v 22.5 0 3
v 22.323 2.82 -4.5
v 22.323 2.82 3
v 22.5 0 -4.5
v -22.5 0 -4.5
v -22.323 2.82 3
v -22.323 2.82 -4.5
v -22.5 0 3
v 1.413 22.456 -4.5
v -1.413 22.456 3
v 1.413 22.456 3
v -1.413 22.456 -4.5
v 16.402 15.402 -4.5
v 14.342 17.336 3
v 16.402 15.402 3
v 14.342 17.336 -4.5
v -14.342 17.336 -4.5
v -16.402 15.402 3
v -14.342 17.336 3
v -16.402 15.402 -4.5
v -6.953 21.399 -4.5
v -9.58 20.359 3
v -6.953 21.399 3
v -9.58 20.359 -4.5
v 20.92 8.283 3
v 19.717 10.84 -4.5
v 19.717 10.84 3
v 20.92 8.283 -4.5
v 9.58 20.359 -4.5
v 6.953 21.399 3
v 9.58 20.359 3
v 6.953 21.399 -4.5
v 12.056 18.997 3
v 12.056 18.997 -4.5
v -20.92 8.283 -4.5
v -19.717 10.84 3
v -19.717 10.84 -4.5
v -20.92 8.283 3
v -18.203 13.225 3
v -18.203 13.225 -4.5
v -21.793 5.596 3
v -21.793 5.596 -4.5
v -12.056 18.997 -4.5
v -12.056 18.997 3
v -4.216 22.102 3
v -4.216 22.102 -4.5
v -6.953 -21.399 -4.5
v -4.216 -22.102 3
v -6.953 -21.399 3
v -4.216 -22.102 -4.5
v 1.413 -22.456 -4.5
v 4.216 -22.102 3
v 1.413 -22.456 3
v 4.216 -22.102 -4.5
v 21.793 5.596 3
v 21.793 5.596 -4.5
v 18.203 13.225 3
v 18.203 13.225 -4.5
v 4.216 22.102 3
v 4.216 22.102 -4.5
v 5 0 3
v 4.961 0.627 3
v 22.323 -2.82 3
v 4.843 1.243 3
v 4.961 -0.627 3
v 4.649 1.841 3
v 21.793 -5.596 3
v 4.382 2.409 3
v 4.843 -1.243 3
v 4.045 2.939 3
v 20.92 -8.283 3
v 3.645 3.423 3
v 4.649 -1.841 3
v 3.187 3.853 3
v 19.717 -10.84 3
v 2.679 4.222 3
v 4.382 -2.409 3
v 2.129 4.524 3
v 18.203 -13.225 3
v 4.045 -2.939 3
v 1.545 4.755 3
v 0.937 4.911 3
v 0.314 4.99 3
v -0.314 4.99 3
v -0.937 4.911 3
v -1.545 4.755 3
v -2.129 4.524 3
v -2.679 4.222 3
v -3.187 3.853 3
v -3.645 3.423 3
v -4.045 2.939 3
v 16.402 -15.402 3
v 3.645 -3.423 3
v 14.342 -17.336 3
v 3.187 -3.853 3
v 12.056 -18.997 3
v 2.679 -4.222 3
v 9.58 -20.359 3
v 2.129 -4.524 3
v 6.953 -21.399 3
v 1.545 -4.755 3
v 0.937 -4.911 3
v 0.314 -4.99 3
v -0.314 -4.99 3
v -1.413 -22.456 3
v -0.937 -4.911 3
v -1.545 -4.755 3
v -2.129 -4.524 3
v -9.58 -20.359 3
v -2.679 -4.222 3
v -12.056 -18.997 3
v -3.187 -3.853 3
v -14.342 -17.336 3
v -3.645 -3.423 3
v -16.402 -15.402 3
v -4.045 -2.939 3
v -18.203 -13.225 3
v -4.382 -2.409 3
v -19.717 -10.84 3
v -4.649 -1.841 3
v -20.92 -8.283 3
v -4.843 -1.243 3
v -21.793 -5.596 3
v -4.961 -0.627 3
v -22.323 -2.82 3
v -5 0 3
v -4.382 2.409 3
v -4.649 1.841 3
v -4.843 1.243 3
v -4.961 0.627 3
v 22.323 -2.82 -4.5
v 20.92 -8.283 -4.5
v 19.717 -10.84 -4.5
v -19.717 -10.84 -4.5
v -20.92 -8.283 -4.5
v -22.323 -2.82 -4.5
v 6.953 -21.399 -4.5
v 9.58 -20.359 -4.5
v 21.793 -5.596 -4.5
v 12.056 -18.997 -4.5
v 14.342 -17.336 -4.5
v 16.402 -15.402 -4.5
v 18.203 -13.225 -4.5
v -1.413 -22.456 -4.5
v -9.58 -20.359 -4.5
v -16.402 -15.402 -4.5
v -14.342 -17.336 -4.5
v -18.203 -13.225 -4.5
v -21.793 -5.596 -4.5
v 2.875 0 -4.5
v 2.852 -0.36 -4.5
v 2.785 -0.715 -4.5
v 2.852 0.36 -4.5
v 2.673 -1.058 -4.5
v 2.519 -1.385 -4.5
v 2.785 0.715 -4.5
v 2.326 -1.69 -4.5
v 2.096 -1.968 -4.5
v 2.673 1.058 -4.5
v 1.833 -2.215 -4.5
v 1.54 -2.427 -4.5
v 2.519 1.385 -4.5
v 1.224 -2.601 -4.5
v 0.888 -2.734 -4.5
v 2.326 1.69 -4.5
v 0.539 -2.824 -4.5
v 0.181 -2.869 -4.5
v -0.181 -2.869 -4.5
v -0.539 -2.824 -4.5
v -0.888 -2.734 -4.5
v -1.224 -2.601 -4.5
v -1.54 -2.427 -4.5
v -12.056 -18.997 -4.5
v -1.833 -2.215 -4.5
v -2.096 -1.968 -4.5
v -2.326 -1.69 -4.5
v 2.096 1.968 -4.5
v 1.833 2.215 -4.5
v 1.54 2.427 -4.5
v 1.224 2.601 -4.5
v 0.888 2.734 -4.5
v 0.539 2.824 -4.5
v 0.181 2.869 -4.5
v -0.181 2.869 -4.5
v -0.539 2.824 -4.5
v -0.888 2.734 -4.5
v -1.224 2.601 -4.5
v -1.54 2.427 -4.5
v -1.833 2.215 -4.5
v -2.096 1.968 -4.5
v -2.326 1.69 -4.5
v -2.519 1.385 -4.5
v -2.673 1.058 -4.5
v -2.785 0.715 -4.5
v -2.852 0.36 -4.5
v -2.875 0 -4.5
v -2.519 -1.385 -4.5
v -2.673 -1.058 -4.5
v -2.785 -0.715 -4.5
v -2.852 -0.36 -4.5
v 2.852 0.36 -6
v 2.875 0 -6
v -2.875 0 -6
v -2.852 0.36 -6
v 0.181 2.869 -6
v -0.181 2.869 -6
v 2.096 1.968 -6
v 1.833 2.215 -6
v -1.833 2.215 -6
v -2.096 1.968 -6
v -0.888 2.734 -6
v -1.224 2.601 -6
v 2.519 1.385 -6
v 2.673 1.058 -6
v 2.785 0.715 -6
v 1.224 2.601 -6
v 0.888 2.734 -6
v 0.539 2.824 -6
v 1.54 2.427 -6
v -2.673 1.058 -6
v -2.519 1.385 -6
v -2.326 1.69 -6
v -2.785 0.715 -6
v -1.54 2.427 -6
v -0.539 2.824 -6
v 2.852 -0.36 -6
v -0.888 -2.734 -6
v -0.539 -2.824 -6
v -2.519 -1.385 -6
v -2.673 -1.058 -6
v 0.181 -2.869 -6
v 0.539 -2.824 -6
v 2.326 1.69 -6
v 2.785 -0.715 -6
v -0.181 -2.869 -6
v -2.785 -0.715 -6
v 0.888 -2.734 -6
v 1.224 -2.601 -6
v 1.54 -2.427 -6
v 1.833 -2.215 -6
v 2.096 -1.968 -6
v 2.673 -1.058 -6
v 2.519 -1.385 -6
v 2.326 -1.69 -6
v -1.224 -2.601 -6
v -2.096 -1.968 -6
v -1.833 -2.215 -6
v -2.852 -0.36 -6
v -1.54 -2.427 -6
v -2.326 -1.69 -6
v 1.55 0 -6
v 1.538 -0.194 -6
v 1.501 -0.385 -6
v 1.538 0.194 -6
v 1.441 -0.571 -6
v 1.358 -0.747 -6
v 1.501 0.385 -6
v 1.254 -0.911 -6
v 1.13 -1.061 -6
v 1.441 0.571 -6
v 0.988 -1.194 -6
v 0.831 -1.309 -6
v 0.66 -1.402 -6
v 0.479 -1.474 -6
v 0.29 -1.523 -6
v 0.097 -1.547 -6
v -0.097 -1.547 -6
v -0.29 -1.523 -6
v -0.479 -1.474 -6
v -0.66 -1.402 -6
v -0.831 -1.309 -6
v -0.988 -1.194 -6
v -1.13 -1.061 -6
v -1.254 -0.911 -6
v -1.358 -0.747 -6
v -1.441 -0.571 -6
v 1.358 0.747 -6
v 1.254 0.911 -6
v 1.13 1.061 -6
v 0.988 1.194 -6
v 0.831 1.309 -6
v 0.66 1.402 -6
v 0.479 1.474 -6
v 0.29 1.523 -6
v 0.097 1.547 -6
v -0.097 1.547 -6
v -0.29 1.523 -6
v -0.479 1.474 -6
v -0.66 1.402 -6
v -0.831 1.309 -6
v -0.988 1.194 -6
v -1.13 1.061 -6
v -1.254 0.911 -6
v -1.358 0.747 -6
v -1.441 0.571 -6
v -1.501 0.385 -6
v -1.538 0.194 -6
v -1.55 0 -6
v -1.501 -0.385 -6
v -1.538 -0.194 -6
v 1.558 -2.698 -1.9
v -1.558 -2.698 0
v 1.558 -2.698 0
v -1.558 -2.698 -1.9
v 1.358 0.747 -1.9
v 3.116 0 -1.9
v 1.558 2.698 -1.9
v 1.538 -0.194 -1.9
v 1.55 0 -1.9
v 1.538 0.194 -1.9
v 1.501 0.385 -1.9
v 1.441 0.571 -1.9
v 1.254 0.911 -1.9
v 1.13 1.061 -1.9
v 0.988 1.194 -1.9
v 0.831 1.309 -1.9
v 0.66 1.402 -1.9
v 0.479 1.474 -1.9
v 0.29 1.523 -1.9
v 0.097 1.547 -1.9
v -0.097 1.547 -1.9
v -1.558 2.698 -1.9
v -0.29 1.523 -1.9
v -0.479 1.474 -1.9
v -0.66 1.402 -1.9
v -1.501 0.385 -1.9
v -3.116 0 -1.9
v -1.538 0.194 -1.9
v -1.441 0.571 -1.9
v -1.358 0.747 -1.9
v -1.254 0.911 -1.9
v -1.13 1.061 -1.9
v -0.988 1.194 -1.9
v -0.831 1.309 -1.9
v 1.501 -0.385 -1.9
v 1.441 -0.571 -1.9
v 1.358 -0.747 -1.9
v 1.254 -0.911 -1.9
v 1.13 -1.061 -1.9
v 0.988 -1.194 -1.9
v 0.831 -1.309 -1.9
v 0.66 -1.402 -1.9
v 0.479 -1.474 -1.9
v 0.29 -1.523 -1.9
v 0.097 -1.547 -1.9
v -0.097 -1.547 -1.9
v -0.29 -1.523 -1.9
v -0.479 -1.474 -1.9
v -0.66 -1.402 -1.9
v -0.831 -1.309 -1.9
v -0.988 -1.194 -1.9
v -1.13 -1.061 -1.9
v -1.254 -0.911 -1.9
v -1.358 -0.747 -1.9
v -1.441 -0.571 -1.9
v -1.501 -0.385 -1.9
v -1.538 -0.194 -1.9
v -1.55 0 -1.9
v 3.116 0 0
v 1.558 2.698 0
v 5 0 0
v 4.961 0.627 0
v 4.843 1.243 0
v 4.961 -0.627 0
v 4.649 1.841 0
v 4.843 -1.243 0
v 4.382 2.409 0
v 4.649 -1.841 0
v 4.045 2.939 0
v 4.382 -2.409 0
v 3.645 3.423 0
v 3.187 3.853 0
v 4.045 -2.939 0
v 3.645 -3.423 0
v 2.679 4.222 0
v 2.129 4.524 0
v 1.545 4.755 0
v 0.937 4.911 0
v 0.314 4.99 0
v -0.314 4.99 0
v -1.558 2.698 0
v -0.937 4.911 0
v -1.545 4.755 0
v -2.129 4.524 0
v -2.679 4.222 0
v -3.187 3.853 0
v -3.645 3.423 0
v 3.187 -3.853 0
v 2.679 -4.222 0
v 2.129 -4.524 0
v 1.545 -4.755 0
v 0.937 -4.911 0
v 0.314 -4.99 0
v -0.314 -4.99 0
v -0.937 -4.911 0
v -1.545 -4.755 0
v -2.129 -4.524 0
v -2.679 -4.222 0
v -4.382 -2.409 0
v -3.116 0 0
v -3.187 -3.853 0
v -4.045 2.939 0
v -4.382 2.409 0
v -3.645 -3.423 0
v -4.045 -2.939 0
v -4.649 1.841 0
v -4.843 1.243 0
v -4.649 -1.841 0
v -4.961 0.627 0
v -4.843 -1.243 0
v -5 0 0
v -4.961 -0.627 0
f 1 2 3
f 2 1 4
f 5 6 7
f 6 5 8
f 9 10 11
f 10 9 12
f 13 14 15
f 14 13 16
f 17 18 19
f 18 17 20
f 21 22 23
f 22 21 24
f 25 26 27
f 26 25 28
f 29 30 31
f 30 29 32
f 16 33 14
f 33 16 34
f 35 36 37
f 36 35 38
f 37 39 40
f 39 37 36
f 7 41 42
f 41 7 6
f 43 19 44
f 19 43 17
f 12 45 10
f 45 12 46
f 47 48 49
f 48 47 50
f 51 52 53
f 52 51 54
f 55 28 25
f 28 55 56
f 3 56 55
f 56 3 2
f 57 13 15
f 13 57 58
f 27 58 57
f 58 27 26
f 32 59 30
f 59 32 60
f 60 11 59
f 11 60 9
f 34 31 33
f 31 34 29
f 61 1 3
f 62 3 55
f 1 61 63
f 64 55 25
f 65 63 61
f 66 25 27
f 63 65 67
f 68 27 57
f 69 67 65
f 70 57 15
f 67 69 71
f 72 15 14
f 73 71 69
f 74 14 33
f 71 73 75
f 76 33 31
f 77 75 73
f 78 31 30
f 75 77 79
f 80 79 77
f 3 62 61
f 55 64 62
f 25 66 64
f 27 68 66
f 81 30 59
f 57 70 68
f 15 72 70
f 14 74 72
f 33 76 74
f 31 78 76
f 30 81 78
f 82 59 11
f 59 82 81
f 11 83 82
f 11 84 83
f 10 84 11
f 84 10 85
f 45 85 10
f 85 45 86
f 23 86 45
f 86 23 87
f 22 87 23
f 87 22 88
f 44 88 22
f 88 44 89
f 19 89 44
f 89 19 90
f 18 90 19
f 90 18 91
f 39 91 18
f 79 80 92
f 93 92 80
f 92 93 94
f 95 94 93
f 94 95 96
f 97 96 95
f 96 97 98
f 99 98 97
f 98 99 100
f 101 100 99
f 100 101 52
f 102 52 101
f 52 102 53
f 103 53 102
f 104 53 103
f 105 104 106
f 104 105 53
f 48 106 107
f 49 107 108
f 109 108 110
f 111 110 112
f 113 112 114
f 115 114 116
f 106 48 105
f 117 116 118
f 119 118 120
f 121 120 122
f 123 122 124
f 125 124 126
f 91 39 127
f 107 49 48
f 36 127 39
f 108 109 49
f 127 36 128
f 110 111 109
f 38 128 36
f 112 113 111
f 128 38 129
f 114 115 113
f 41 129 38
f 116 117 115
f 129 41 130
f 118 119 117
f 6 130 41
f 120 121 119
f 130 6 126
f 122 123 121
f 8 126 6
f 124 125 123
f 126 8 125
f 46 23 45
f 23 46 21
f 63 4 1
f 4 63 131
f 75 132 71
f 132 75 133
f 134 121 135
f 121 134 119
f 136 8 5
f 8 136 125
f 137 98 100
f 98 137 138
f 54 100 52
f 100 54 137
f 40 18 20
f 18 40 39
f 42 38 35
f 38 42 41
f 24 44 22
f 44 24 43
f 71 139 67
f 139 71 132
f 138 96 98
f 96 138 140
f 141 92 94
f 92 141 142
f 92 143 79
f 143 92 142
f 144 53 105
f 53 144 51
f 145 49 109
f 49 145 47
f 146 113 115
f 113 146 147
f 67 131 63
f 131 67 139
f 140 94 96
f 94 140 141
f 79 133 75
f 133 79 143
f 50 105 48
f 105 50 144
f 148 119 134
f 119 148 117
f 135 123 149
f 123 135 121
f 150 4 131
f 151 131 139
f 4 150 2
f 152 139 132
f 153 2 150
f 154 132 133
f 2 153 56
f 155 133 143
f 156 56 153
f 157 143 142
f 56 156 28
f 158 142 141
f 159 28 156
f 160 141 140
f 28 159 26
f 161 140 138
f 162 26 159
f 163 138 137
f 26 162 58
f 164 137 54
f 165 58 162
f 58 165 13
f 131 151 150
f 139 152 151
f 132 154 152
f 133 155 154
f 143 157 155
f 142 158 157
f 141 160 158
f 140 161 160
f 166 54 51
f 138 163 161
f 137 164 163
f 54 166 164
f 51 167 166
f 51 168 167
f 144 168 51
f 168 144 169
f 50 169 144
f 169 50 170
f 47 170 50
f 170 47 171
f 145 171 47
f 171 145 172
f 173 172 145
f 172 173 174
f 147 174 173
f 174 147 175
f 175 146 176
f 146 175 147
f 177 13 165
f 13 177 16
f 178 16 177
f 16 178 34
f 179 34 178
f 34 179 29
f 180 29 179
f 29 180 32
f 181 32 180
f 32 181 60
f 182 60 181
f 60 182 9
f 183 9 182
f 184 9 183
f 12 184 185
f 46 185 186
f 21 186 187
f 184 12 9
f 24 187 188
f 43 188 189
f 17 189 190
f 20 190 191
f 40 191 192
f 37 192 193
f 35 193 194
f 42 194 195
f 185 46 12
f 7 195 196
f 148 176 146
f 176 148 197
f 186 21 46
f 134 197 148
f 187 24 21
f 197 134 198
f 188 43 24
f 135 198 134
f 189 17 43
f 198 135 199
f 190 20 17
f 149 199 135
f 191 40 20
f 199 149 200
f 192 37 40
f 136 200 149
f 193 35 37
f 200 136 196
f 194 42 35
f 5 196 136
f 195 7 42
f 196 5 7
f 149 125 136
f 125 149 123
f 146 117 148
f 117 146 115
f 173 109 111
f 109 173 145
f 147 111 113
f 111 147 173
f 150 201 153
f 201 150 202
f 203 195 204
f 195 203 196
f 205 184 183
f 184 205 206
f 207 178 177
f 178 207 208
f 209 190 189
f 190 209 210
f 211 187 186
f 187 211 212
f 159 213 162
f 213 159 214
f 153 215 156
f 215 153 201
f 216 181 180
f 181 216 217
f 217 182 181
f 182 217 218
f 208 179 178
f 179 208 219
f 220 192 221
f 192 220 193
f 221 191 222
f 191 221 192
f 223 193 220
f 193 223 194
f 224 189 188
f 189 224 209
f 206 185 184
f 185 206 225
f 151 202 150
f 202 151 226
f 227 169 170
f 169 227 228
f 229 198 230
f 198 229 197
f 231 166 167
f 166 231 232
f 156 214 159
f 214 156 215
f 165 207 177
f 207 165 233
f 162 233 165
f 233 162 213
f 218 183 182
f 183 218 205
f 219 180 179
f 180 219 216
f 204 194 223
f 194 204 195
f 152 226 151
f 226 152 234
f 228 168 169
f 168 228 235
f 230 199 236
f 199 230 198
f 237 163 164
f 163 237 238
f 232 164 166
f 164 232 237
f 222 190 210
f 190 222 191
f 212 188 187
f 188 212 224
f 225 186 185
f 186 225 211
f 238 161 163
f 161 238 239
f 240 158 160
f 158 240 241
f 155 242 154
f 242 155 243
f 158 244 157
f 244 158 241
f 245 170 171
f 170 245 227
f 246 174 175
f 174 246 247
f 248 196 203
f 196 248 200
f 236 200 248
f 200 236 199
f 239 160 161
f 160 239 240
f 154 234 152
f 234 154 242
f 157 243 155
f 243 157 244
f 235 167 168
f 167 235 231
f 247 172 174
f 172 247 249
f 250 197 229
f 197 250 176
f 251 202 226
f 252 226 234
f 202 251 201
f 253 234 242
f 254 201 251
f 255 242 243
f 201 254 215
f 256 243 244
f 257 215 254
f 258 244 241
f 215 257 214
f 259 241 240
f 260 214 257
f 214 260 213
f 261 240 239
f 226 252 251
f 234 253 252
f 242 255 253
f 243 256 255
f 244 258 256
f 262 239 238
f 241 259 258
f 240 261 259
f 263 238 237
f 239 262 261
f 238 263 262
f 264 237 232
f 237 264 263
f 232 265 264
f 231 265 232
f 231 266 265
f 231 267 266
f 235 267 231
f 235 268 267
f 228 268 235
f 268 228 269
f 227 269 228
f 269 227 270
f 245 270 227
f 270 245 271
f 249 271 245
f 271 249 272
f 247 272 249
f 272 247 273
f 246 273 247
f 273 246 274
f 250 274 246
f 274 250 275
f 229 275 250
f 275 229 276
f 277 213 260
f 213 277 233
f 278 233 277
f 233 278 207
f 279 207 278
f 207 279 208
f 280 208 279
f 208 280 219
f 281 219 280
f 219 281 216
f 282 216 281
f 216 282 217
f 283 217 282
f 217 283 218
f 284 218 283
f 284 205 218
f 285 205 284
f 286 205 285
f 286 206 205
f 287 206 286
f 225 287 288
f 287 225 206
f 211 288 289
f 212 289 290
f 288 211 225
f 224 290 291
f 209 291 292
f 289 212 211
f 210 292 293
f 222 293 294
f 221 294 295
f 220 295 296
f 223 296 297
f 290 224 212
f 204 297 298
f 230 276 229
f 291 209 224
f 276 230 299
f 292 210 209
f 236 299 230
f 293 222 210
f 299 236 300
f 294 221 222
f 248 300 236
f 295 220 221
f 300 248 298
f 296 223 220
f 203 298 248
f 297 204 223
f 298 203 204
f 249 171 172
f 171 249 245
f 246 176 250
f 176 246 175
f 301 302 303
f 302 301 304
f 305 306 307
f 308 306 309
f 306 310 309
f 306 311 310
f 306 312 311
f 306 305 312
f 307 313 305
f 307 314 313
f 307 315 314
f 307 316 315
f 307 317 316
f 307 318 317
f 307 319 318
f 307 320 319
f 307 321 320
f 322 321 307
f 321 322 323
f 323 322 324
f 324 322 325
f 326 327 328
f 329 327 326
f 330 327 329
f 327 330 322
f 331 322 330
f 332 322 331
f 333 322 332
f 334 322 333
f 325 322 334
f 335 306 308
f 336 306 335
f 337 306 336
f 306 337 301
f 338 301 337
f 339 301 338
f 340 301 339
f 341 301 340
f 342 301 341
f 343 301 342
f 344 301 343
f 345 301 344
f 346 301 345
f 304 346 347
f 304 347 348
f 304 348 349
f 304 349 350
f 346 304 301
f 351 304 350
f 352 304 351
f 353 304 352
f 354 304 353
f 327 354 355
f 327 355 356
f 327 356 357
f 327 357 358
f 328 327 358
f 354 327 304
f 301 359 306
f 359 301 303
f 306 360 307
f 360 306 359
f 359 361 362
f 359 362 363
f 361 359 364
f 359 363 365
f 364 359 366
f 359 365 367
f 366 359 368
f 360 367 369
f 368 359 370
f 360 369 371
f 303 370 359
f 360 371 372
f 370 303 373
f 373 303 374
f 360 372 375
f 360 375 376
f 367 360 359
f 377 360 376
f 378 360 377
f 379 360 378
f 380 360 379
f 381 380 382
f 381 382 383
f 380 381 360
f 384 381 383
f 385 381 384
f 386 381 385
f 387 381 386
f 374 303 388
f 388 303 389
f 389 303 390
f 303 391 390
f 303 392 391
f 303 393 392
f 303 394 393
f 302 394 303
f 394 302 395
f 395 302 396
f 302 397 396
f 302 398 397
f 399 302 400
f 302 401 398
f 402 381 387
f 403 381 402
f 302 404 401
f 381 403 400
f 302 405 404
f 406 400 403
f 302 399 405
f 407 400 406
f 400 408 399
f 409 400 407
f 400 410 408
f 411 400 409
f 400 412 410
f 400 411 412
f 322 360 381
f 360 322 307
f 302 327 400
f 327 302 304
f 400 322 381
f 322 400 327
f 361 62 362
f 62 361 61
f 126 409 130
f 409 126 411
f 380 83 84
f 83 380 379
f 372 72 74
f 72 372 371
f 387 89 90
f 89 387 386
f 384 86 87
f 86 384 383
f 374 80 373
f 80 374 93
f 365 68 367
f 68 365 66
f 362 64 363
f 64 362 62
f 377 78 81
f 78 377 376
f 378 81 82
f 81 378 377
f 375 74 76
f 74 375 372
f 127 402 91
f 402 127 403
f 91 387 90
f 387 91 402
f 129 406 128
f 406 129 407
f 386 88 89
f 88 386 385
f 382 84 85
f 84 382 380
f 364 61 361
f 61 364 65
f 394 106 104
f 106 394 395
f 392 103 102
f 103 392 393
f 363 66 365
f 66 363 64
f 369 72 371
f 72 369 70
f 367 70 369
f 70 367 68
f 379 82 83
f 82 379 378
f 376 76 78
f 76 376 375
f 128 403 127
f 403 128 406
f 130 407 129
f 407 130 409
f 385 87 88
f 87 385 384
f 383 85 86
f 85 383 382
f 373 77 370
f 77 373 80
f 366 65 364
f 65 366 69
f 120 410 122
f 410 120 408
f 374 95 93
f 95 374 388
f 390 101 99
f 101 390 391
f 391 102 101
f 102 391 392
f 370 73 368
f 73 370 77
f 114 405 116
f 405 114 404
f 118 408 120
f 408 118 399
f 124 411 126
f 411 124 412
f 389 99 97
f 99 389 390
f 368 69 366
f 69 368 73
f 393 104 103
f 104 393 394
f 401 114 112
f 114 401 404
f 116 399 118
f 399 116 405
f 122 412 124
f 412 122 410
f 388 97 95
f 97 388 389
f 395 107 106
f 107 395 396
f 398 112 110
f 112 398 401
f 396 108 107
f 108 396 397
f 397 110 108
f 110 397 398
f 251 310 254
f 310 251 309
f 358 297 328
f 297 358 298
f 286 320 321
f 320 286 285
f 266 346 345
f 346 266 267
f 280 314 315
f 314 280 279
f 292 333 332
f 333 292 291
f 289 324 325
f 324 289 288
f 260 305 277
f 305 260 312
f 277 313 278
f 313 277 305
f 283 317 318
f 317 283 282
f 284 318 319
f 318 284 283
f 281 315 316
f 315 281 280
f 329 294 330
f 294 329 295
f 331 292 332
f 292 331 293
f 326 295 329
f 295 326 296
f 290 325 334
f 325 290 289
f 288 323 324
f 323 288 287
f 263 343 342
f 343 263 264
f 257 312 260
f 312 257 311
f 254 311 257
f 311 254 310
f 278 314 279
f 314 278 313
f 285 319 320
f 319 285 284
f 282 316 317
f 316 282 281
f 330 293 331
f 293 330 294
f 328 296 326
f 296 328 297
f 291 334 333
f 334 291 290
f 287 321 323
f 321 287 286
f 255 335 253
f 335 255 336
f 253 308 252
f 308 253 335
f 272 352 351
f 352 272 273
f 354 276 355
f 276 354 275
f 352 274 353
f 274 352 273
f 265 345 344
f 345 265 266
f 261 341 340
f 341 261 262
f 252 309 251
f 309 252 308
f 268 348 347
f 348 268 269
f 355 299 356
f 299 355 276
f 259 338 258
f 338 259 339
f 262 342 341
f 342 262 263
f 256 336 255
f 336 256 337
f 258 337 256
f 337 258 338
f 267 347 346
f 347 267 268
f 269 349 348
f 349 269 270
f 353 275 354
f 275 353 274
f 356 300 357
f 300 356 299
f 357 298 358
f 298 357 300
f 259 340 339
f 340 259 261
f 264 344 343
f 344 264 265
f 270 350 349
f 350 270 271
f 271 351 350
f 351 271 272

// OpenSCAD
$fn = 50;


difference() {
	union() {
		translate(v = [0, 0, -4.5000000000]) {
			cylinder(h = 7.5000000000, r = 22.5000000000);
		}
		#translate(v = [0, 0, -6.0000000000]) {
			cylinder(h = 6, r = 2.8750000000);
		}
	}
	union() {
		translate(v = [0, 0, 0]) {
			rotate(a = [0, 0, 0]) {
				difference() {
					union() {
						translate(v = [0, 0, -1.9000000000]) {
							linear_extrude(height = 1.9000000000) {
								polygon(points = [[3.1158000000, 0.0000000000], [1.5579000000, 2.6983619531], [-1.5579000000, 2.6983619531], [-3.1158000000, 0.0000000000], [-1.5579000000, -2.6983619531], [1.5579000000, -2.6983619531]]);
							}
						}
					}
					union();
				}
			}
		}
		#cylinder(h = 3, r = 5.0000000000);
		#translate(v = [0, 0, -100.0000000000]) {
			cylinder(h = 200, r = 1.5500000000);
		}
	}
}
